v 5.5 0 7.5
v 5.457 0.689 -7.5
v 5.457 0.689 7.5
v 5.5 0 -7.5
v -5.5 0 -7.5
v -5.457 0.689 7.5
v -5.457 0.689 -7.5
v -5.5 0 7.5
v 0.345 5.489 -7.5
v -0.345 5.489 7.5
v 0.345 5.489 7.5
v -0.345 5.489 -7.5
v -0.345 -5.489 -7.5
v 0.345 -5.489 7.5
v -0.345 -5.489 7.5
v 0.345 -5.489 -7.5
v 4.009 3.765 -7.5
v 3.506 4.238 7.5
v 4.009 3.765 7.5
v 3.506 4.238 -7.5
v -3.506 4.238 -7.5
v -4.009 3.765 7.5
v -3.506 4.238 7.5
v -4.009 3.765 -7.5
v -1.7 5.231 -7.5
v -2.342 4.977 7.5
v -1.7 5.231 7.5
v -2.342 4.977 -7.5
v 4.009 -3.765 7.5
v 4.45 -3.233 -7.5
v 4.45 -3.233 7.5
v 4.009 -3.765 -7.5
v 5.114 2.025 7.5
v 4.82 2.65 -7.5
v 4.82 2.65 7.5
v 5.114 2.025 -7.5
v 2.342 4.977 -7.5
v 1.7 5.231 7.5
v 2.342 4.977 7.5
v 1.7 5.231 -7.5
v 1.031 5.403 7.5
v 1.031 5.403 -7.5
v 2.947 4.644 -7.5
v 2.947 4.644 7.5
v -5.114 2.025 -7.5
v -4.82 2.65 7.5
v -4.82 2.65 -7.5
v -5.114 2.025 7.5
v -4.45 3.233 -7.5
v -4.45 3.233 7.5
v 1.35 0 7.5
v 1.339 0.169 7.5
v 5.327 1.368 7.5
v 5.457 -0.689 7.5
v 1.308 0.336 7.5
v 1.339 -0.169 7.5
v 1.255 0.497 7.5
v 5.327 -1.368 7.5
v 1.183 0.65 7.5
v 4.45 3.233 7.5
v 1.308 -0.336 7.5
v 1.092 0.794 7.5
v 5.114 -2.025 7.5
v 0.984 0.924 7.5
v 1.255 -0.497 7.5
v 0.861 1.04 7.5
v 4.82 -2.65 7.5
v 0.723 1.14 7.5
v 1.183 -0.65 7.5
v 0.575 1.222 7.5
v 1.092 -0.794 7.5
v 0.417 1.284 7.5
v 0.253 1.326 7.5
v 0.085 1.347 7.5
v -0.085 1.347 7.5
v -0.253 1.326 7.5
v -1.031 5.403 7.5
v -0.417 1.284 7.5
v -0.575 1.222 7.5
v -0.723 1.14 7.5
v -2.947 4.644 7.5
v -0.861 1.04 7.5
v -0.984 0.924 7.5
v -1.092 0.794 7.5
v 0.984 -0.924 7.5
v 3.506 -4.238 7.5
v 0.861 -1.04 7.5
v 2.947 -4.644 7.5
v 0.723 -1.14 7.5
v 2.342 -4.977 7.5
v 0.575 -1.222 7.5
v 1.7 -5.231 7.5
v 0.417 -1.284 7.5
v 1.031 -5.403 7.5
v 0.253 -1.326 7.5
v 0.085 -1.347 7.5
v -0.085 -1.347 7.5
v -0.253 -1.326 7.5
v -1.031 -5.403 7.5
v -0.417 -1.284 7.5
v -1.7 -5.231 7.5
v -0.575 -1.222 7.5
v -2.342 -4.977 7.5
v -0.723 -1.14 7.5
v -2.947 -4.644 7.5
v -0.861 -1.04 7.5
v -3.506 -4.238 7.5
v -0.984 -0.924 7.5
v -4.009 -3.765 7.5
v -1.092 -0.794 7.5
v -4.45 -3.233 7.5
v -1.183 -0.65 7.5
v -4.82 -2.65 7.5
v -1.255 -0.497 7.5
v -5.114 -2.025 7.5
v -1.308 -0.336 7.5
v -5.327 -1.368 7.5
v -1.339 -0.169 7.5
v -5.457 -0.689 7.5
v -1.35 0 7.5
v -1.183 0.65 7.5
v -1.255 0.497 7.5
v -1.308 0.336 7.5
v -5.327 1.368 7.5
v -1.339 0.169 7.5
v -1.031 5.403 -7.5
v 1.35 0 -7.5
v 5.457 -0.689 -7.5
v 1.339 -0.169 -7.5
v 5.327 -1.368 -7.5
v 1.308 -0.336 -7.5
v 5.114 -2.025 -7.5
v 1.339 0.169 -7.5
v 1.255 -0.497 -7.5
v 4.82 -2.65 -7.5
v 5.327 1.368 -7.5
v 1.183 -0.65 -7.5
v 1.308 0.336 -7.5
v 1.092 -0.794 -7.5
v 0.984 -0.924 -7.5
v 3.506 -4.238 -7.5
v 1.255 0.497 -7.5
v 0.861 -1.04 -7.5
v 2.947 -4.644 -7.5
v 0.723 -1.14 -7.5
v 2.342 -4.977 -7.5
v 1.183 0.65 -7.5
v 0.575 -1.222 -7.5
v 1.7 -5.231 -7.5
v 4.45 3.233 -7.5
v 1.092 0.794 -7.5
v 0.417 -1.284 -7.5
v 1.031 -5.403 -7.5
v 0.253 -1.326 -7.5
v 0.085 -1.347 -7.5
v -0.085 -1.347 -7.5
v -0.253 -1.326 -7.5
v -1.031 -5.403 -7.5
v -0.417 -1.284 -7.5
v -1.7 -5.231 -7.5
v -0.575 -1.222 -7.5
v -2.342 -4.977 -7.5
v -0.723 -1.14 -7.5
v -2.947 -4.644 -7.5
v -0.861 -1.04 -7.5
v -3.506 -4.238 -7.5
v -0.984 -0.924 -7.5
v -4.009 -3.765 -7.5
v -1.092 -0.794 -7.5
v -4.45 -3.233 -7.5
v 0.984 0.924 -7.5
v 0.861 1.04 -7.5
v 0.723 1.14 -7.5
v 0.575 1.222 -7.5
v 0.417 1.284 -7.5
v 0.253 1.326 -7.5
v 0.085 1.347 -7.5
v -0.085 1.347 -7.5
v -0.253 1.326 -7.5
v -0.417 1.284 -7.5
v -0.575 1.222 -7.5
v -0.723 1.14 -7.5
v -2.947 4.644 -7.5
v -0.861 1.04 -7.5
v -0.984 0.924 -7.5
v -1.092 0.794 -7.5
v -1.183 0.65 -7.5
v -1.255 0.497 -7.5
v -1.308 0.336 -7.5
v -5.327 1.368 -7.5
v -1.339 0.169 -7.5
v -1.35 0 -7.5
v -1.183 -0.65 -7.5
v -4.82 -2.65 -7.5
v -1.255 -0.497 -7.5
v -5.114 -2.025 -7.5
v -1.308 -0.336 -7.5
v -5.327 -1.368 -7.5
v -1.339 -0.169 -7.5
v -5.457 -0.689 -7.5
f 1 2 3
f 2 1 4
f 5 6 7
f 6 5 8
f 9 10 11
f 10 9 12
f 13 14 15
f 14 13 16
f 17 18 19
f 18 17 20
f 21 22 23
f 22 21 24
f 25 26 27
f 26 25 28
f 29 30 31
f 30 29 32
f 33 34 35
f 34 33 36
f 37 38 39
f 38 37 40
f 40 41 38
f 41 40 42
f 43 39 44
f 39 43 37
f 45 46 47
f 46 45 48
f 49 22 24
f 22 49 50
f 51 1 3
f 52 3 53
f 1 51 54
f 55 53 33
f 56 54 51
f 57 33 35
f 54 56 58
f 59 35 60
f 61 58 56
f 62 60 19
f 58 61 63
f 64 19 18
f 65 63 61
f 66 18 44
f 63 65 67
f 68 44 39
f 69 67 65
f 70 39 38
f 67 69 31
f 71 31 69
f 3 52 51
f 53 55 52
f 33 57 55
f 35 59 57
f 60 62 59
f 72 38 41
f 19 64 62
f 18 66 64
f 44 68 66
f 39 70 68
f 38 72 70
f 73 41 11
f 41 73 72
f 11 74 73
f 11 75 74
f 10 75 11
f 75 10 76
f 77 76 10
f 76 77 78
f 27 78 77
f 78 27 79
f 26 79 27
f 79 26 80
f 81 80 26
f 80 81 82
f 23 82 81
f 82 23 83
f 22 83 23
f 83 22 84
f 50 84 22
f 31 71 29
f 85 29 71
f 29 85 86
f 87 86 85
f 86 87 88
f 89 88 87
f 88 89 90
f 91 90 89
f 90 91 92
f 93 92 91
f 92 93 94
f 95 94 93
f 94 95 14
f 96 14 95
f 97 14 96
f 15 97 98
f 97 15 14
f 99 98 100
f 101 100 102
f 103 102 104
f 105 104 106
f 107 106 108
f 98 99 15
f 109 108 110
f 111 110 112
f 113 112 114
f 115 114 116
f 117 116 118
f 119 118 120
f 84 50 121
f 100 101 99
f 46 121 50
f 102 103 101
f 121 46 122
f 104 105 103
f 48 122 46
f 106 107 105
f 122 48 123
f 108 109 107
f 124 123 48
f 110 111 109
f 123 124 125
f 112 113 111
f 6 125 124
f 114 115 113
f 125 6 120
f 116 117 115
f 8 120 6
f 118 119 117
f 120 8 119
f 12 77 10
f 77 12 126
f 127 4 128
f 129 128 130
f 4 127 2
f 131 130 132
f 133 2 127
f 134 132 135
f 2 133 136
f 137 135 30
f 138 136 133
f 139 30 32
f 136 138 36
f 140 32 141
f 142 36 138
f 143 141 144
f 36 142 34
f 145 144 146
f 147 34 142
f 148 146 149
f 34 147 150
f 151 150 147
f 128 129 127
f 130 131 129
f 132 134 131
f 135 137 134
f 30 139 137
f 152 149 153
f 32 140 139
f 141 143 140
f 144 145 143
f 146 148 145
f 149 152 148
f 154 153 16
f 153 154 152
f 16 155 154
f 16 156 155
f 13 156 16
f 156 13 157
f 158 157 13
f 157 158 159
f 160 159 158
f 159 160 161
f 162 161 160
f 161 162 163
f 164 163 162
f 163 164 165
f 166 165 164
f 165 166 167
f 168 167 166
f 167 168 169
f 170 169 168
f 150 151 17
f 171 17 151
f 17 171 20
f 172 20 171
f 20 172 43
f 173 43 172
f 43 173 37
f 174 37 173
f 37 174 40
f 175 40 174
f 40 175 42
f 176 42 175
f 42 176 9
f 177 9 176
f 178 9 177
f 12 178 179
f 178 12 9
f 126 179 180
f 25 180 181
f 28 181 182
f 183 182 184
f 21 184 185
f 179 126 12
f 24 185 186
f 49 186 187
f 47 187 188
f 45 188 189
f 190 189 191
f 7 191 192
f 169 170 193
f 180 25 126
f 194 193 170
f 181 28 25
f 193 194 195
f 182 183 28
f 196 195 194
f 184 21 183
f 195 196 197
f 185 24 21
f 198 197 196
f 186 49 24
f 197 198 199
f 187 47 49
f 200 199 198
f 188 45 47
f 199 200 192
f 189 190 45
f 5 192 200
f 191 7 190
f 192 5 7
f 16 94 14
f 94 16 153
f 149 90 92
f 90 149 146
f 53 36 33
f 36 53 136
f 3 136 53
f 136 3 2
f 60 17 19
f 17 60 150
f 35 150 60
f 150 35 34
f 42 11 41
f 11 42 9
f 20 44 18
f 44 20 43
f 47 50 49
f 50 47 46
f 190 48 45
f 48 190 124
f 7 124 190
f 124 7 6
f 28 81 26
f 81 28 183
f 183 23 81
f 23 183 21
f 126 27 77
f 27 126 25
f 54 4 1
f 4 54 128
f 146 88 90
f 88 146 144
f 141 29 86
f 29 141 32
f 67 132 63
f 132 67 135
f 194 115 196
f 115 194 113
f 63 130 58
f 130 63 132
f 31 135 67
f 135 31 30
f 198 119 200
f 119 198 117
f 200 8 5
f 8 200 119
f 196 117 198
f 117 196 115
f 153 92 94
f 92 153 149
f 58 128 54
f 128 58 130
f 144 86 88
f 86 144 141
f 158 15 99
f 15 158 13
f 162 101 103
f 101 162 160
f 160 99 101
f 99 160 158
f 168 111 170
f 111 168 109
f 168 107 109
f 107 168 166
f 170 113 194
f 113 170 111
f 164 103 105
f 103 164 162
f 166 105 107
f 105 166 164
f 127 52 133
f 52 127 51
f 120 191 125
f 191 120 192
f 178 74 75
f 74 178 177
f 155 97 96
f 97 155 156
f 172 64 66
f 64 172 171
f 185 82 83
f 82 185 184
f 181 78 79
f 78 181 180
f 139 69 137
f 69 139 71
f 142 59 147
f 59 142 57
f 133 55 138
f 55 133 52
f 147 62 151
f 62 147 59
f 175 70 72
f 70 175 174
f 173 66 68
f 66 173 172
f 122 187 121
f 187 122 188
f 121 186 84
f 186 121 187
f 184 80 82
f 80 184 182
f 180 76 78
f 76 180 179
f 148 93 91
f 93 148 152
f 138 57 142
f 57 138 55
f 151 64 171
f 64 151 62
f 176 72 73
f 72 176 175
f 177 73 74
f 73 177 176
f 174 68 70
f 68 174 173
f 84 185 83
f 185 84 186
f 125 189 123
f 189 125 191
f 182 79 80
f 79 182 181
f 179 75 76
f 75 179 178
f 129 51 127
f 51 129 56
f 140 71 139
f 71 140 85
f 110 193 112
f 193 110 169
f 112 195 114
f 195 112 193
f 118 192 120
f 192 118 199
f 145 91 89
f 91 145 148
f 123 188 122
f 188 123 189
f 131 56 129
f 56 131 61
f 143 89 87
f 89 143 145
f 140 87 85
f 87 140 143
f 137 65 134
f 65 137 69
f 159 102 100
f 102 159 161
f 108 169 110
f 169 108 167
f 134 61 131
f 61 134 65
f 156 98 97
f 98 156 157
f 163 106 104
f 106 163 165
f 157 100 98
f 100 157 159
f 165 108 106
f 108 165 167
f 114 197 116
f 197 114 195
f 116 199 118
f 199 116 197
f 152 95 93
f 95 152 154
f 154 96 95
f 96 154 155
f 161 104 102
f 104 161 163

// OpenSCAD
$fn = 50;


difference() {
	union() {
		translate(v = [0, 0, -7.5000000000]) {
			cylinder(h = 15, r = 5.5000000000);
		}
	}
	union() {
		translate(v = [0, 0, -100.0000000000]) {
			cylinder(h = 200, r = 1.3500000000);
		}
	}
}
